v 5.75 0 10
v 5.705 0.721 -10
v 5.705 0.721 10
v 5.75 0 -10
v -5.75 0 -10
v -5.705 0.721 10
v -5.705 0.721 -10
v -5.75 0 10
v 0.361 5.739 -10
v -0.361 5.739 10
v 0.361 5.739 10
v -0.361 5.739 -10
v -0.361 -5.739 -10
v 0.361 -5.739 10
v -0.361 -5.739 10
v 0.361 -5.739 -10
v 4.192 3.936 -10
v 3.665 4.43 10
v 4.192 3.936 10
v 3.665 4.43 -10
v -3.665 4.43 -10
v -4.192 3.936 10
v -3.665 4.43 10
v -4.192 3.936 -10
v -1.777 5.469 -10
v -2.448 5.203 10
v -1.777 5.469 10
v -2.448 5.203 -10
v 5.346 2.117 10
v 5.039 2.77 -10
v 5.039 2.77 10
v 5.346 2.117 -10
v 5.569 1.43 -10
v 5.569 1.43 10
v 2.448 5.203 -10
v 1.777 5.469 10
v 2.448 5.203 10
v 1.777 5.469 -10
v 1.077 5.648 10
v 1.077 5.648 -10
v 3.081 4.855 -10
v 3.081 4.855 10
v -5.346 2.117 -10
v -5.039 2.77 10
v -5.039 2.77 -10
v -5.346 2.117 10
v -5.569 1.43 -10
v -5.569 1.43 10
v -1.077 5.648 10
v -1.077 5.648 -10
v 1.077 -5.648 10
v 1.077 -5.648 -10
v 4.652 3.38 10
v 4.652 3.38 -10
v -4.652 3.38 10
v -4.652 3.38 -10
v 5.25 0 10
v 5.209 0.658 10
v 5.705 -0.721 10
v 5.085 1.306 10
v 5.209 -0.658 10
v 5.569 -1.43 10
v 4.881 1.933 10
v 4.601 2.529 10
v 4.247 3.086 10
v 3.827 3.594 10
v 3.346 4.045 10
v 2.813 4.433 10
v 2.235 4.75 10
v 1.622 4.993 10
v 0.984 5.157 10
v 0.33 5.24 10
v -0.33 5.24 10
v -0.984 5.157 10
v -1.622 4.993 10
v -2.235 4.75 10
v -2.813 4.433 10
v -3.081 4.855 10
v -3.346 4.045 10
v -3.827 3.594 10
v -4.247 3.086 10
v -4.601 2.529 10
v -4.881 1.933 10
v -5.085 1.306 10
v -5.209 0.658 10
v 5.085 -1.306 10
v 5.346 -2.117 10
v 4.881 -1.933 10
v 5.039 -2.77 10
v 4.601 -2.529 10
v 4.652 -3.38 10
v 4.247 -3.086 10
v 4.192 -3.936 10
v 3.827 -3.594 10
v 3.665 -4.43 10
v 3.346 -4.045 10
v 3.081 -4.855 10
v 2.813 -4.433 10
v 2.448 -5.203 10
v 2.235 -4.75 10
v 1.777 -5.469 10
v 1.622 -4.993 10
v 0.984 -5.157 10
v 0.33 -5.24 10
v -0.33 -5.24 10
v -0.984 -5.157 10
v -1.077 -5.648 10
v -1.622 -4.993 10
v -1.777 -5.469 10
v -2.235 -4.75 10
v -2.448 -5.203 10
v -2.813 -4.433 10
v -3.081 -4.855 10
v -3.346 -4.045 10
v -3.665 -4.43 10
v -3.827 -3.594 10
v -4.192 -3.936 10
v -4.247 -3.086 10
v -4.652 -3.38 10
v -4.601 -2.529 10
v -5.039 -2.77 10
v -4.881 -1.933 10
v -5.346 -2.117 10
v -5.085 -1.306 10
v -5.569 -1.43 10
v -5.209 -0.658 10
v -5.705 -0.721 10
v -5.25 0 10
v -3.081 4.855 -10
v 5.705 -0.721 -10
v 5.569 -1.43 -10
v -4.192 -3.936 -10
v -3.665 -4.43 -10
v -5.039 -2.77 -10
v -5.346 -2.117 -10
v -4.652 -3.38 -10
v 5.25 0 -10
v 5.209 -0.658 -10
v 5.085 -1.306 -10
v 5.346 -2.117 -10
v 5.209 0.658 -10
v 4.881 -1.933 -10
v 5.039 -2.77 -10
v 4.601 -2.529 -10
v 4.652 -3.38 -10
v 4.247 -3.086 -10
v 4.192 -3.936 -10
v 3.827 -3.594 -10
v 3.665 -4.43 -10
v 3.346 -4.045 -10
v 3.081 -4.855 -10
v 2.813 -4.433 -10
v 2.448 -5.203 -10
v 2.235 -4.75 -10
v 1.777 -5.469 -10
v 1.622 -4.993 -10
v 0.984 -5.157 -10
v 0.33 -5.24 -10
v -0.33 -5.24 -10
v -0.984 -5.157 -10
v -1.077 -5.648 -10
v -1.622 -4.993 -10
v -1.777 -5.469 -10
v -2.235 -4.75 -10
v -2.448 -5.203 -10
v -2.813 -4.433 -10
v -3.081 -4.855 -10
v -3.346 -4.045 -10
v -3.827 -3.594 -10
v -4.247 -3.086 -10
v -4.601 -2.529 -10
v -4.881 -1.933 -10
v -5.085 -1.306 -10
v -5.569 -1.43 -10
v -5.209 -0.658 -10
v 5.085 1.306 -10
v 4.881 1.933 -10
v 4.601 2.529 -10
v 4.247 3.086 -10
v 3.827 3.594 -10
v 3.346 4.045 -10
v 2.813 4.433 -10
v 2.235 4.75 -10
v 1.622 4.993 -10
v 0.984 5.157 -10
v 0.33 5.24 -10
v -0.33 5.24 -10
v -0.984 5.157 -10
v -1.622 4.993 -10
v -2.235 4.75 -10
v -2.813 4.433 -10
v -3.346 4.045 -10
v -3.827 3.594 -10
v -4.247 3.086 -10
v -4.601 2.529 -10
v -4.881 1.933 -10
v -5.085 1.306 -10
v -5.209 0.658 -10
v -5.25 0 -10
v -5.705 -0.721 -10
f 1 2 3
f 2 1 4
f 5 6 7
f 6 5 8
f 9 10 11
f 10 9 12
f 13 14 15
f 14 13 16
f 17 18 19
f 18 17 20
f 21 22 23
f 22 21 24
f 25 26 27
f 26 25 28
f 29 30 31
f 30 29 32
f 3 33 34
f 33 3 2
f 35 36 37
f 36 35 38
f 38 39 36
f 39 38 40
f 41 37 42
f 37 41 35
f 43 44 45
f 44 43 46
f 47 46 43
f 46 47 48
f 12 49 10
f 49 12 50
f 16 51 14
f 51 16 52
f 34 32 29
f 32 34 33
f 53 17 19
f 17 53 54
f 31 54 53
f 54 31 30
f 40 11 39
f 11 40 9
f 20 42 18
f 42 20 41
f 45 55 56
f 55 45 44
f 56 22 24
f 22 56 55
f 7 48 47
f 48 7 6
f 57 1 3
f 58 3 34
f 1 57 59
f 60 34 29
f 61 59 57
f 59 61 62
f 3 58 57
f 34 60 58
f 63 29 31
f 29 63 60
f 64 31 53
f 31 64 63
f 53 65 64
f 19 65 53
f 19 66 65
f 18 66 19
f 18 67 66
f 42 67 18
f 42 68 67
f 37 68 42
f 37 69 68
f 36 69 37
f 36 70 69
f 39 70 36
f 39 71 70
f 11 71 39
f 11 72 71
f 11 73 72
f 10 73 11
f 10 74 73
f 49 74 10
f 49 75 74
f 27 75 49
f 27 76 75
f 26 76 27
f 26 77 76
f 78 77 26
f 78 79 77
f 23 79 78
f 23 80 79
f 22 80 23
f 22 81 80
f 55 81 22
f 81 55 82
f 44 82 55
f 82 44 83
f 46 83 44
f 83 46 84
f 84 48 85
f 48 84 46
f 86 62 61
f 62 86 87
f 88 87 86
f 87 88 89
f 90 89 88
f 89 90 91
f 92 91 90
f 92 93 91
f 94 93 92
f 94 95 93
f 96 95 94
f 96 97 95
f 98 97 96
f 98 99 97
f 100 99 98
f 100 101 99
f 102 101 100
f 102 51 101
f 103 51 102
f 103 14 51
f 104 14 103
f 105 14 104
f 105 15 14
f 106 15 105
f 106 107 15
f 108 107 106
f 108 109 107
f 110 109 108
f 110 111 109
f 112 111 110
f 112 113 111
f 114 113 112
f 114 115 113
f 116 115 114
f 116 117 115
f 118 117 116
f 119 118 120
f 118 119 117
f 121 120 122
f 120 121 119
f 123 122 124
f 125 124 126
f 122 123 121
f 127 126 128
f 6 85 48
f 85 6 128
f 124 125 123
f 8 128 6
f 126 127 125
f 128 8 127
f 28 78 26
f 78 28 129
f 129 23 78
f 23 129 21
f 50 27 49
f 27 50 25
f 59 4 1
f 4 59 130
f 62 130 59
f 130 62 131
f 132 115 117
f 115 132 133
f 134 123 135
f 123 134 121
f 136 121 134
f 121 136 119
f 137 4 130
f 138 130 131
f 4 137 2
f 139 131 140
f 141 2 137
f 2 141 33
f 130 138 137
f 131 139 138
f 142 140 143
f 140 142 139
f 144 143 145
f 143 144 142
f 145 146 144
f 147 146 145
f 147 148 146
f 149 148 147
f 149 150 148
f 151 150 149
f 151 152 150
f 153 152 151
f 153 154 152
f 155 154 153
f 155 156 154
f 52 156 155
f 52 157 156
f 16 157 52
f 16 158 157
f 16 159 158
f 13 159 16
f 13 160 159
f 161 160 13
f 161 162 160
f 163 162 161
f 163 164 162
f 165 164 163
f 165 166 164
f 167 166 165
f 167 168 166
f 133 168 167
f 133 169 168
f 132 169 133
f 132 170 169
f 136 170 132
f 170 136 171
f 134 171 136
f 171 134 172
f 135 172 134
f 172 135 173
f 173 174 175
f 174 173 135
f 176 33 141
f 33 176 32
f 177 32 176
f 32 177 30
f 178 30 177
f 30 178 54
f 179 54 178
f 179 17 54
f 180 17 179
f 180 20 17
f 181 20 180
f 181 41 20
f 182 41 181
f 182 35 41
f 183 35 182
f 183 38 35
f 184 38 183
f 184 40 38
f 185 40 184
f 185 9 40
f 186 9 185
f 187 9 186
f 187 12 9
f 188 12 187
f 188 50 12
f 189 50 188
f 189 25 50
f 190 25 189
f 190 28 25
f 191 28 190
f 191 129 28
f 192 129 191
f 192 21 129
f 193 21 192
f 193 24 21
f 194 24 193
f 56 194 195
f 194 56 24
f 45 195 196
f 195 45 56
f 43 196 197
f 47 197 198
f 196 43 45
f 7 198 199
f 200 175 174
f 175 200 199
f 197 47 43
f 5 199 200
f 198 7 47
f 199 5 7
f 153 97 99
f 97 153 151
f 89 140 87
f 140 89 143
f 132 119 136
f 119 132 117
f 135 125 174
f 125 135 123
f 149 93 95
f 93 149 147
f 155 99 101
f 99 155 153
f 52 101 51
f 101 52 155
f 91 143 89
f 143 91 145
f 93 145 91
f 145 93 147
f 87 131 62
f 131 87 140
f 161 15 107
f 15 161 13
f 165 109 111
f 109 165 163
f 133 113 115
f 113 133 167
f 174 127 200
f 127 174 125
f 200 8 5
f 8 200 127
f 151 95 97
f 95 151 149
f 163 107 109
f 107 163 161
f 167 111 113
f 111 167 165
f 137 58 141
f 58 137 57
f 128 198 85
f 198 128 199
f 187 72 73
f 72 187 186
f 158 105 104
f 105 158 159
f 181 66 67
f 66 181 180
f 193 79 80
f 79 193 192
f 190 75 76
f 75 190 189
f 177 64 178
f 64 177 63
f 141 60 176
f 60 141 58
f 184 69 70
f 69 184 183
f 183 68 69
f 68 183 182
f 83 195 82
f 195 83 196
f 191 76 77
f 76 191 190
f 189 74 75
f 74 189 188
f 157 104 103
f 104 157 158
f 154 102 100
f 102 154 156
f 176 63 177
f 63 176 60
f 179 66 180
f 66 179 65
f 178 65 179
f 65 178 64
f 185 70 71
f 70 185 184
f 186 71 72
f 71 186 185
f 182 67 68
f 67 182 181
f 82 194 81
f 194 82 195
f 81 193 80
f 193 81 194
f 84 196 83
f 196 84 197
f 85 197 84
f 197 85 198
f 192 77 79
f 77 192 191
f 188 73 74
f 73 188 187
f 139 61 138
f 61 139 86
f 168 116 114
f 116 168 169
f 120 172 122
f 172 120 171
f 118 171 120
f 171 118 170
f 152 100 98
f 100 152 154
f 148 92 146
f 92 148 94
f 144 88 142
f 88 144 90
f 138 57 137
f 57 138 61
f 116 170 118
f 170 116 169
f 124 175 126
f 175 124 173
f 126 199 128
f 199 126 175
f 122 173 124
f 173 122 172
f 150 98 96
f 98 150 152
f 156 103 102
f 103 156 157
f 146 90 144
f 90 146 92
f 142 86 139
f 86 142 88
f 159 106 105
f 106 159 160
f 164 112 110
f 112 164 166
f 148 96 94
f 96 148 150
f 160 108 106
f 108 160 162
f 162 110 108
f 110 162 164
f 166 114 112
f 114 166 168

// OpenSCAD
$fn = 50;


difference() {
	union() {
		translate(v = [0, 0, -10.0000000000]) {
			cylinder(h = 20, r = 5.7500000000);
		}
	}
	union() {
		translate(v = [0, 0, -100.0000000000]) {
			cylinder(h = 200, r = 5.2500000000);
		}
	}
}
